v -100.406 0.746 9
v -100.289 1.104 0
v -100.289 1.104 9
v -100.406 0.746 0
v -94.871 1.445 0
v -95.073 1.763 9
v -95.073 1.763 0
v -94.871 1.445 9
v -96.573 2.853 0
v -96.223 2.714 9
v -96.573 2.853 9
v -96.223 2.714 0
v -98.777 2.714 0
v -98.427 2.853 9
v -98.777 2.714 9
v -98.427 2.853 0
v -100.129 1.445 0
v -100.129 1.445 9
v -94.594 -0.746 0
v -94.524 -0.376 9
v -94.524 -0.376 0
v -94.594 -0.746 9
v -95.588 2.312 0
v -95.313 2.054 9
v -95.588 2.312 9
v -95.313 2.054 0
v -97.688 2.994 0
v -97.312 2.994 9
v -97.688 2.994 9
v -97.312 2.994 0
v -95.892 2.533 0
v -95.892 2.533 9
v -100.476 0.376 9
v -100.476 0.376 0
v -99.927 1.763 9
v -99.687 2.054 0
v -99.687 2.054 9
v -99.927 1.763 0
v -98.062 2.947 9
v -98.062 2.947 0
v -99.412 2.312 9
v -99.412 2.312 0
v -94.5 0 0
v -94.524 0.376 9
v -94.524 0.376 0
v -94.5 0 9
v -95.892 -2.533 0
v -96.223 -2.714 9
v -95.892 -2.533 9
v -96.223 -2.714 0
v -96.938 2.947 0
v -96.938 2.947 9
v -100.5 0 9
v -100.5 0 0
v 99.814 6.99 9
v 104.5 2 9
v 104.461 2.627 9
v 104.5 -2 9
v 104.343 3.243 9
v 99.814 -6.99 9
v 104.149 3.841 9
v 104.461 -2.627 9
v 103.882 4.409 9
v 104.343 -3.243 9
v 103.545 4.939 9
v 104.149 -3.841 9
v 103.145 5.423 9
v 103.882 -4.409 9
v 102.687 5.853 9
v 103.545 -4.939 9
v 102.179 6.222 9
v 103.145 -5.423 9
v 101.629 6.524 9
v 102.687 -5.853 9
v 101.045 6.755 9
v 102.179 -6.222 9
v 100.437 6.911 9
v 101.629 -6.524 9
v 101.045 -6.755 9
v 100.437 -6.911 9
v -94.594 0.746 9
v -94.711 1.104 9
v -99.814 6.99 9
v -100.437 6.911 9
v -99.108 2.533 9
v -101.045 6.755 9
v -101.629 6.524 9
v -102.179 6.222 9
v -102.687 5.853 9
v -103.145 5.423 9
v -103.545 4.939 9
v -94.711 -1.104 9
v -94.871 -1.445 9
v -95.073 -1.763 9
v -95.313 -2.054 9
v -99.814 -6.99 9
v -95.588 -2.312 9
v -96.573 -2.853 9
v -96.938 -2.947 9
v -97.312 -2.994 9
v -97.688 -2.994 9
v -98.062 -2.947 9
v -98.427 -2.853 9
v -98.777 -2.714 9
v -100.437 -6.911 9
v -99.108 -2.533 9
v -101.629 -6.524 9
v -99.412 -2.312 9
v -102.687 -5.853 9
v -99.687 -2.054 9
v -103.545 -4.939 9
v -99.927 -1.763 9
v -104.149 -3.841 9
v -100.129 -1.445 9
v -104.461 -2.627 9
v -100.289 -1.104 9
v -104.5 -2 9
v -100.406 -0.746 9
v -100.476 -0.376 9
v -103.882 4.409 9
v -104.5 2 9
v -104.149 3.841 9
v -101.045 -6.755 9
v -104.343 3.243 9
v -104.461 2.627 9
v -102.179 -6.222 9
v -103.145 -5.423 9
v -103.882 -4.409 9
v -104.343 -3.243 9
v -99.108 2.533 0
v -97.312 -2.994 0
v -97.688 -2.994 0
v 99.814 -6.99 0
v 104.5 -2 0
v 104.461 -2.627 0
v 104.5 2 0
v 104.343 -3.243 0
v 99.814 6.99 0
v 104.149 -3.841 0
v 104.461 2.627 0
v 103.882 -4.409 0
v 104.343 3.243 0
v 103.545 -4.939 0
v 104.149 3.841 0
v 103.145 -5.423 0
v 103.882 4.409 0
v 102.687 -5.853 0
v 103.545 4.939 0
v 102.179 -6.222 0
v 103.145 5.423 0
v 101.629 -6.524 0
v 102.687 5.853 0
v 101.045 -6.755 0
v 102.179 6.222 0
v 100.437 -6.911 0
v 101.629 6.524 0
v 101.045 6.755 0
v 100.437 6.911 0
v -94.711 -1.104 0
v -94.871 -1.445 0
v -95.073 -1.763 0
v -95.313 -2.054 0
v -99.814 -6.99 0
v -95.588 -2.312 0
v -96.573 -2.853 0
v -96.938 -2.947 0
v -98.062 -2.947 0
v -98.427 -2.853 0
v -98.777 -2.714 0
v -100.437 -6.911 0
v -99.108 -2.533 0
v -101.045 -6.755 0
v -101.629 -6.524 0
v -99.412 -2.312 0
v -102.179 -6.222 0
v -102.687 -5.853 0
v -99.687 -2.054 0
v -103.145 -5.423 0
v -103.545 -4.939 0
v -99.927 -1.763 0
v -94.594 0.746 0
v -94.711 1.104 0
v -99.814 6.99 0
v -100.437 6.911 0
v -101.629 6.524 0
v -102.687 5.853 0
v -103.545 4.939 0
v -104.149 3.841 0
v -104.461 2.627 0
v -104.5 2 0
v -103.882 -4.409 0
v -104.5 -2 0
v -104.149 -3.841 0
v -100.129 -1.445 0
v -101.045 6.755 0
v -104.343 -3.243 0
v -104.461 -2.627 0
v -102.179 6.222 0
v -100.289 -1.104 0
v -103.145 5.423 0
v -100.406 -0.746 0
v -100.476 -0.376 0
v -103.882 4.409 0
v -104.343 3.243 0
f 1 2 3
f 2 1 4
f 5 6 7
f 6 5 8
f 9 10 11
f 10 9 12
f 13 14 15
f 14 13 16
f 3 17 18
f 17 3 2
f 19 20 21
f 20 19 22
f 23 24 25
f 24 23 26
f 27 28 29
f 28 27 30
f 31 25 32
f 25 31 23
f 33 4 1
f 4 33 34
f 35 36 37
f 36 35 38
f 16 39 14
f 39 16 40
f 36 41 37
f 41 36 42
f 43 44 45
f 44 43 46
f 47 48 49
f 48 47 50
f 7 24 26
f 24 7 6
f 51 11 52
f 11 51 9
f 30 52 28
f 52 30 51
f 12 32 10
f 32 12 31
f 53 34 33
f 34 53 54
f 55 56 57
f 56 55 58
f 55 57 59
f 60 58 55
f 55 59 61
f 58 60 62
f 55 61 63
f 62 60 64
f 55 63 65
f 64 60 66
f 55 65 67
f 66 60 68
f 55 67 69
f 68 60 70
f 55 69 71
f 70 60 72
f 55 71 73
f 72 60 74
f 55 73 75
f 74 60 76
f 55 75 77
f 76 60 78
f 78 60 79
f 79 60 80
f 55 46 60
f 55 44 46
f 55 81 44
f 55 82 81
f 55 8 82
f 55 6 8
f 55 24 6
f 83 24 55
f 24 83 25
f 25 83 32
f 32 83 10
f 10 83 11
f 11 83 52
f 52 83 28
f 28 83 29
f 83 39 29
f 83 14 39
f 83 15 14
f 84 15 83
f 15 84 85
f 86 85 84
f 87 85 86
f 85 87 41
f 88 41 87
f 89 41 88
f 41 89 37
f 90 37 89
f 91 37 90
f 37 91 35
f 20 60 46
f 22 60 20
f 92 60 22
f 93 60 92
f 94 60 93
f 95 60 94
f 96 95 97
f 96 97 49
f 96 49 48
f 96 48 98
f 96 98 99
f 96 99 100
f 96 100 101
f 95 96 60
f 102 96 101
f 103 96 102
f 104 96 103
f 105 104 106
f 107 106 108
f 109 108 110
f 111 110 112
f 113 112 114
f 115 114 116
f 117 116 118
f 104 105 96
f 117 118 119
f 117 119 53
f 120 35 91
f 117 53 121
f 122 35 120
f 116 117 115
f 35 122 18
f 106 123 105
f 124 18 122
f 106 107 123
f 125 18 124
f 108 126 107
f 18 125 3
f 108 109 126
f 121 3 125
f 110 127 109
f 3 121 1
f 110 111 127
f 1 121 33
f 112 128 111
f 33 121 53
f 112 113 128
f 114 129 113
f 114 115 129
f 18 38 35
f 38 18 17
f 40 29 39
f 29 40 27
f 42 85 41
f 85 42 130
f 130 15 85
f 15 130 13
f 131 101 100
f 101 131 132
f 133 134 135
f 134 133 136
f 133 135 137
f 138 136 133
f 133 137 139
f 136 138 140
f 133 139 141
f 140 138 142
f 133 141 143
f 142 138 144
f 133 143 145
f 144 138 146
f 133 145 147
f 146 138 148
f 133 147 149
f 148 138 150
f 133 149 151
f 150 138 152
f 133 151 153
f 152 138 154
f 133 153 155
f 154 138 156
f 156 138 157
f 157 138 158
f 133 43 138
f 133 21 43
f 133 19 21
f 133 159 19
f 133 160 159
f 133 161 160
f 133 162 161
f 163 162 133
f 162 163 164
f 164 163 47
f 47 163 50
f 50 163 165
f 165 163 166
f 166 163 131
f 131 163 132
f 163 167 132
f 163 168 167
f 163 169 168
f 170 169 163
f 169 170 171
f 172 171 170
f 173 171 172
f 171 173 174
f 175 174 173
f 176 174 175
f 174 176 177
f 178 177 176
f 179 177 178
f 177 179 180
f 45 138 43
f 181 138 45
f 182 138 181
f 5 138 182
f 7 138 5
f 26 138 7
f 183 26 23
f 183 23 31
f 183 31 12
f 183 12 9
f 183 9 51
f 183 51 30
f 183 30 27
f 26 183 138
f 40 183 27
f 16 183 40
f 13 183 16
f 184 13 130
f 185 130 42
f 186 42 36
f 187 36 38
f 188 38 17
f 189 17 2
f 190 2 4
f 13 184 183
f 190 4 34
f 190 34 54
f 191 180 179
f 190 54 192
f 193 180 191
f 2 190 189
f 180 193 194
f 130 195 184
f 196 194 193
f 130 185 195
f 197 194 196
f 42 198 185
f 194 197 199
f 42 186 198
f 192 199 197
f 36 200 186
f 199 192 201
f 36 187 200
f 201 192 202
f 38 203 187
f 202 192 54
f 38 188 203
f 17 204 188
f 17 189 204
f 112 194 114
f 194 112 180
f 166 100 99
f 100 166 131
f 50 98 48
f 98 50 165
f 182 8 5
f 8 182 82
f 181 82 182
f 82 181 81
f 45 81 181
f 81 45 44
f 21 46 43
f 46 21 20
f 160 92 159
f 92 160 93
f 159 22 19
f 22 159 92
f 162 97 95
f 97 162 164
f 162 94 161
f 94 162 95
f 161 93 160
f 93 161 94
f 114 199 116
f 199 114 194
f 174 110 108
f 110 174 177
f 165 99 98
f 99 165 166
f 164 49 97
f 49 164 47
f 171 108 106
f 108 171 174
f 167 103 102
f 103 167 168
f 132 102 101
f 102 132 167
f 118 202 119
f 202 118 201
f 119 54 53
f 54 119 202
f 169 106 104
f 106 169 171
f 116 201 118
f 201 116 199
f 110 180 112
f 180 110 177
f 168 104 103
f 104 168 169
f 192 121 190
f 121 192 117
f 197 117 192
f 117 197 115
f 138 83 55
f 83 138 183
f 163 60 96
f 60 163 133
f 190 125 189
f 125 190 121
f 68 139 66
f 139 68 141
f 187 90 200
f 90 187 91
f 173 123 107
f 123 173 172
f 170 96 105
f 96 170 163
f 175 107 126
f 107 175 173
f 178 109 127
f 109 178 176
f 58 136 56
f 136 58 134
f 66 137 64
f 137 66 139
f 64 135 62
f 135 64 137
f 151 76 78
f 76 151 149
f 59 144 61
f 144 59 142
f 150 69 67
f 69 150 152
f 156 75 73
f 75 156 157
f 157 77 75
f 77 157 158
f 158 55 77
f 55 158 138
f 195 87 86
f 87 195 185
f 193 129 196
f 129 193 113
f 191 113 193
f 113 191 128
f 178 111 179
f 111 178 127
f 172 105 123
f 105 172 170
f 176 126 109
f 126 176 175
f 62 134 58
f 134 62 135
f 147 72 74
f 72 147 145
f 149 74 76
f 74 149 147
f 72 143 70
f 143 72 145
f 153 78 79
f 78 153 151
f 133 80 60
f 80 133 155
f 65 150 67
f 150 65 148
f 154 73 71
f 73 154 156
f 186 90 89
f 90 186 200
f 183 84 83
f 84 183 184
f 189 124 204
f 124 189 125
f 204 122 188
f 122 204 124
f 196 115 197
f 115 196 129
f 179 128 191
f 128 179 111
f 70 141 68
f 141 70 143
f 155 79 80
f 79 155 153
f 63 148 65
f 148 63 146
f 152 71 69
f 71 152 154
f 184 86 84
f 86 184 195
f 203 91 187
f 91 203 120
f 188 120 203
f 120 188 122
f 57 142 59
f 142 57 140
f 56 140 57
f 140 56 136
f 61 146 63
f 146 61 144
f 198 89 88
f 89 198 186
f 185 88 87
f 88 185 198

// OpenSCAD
$fn = 50;


difference() {
	union() {
		hull() {
			translate(v = [-99.5000000000, 2.0000000000, 0]) {
				cylinder(h = 9, r = 5);
			}
			translate(v = [99.5000000000, 2.0000000000, 0]) {
				cylinder(h = 9, r = 5);
			}
			translate(v = [-99.5000000000, -2.0000000000, 0]) {
				cylinder(h = 9, r = 5);
			}
			translate(v = [99.5000000000, -2.0000000000, 0]) {
				cylinder(h = 9, r = 5);
			}
		}
	}
	union() {
		translate(v = [-97.5000000000, 0.0000000000, 0]) {
			cylinder(h = 9, r = 3.0000000000);
		}
		translate(v = [-97.5000000000, 0.0000000000, 0]) {
			cylinder(h = 9, r = 1.5000000000);
		}
		translate(v = [-97.5000000000, 0.0000000000, 0]) {
			cylinder(h = 9, r = 1.5000000000);
		}
		translate(v = [-97.5000000000, 0.0000000000, 0]) {
			cylinder(h = 9, r = 1.5000000000);
		}
	}
}
